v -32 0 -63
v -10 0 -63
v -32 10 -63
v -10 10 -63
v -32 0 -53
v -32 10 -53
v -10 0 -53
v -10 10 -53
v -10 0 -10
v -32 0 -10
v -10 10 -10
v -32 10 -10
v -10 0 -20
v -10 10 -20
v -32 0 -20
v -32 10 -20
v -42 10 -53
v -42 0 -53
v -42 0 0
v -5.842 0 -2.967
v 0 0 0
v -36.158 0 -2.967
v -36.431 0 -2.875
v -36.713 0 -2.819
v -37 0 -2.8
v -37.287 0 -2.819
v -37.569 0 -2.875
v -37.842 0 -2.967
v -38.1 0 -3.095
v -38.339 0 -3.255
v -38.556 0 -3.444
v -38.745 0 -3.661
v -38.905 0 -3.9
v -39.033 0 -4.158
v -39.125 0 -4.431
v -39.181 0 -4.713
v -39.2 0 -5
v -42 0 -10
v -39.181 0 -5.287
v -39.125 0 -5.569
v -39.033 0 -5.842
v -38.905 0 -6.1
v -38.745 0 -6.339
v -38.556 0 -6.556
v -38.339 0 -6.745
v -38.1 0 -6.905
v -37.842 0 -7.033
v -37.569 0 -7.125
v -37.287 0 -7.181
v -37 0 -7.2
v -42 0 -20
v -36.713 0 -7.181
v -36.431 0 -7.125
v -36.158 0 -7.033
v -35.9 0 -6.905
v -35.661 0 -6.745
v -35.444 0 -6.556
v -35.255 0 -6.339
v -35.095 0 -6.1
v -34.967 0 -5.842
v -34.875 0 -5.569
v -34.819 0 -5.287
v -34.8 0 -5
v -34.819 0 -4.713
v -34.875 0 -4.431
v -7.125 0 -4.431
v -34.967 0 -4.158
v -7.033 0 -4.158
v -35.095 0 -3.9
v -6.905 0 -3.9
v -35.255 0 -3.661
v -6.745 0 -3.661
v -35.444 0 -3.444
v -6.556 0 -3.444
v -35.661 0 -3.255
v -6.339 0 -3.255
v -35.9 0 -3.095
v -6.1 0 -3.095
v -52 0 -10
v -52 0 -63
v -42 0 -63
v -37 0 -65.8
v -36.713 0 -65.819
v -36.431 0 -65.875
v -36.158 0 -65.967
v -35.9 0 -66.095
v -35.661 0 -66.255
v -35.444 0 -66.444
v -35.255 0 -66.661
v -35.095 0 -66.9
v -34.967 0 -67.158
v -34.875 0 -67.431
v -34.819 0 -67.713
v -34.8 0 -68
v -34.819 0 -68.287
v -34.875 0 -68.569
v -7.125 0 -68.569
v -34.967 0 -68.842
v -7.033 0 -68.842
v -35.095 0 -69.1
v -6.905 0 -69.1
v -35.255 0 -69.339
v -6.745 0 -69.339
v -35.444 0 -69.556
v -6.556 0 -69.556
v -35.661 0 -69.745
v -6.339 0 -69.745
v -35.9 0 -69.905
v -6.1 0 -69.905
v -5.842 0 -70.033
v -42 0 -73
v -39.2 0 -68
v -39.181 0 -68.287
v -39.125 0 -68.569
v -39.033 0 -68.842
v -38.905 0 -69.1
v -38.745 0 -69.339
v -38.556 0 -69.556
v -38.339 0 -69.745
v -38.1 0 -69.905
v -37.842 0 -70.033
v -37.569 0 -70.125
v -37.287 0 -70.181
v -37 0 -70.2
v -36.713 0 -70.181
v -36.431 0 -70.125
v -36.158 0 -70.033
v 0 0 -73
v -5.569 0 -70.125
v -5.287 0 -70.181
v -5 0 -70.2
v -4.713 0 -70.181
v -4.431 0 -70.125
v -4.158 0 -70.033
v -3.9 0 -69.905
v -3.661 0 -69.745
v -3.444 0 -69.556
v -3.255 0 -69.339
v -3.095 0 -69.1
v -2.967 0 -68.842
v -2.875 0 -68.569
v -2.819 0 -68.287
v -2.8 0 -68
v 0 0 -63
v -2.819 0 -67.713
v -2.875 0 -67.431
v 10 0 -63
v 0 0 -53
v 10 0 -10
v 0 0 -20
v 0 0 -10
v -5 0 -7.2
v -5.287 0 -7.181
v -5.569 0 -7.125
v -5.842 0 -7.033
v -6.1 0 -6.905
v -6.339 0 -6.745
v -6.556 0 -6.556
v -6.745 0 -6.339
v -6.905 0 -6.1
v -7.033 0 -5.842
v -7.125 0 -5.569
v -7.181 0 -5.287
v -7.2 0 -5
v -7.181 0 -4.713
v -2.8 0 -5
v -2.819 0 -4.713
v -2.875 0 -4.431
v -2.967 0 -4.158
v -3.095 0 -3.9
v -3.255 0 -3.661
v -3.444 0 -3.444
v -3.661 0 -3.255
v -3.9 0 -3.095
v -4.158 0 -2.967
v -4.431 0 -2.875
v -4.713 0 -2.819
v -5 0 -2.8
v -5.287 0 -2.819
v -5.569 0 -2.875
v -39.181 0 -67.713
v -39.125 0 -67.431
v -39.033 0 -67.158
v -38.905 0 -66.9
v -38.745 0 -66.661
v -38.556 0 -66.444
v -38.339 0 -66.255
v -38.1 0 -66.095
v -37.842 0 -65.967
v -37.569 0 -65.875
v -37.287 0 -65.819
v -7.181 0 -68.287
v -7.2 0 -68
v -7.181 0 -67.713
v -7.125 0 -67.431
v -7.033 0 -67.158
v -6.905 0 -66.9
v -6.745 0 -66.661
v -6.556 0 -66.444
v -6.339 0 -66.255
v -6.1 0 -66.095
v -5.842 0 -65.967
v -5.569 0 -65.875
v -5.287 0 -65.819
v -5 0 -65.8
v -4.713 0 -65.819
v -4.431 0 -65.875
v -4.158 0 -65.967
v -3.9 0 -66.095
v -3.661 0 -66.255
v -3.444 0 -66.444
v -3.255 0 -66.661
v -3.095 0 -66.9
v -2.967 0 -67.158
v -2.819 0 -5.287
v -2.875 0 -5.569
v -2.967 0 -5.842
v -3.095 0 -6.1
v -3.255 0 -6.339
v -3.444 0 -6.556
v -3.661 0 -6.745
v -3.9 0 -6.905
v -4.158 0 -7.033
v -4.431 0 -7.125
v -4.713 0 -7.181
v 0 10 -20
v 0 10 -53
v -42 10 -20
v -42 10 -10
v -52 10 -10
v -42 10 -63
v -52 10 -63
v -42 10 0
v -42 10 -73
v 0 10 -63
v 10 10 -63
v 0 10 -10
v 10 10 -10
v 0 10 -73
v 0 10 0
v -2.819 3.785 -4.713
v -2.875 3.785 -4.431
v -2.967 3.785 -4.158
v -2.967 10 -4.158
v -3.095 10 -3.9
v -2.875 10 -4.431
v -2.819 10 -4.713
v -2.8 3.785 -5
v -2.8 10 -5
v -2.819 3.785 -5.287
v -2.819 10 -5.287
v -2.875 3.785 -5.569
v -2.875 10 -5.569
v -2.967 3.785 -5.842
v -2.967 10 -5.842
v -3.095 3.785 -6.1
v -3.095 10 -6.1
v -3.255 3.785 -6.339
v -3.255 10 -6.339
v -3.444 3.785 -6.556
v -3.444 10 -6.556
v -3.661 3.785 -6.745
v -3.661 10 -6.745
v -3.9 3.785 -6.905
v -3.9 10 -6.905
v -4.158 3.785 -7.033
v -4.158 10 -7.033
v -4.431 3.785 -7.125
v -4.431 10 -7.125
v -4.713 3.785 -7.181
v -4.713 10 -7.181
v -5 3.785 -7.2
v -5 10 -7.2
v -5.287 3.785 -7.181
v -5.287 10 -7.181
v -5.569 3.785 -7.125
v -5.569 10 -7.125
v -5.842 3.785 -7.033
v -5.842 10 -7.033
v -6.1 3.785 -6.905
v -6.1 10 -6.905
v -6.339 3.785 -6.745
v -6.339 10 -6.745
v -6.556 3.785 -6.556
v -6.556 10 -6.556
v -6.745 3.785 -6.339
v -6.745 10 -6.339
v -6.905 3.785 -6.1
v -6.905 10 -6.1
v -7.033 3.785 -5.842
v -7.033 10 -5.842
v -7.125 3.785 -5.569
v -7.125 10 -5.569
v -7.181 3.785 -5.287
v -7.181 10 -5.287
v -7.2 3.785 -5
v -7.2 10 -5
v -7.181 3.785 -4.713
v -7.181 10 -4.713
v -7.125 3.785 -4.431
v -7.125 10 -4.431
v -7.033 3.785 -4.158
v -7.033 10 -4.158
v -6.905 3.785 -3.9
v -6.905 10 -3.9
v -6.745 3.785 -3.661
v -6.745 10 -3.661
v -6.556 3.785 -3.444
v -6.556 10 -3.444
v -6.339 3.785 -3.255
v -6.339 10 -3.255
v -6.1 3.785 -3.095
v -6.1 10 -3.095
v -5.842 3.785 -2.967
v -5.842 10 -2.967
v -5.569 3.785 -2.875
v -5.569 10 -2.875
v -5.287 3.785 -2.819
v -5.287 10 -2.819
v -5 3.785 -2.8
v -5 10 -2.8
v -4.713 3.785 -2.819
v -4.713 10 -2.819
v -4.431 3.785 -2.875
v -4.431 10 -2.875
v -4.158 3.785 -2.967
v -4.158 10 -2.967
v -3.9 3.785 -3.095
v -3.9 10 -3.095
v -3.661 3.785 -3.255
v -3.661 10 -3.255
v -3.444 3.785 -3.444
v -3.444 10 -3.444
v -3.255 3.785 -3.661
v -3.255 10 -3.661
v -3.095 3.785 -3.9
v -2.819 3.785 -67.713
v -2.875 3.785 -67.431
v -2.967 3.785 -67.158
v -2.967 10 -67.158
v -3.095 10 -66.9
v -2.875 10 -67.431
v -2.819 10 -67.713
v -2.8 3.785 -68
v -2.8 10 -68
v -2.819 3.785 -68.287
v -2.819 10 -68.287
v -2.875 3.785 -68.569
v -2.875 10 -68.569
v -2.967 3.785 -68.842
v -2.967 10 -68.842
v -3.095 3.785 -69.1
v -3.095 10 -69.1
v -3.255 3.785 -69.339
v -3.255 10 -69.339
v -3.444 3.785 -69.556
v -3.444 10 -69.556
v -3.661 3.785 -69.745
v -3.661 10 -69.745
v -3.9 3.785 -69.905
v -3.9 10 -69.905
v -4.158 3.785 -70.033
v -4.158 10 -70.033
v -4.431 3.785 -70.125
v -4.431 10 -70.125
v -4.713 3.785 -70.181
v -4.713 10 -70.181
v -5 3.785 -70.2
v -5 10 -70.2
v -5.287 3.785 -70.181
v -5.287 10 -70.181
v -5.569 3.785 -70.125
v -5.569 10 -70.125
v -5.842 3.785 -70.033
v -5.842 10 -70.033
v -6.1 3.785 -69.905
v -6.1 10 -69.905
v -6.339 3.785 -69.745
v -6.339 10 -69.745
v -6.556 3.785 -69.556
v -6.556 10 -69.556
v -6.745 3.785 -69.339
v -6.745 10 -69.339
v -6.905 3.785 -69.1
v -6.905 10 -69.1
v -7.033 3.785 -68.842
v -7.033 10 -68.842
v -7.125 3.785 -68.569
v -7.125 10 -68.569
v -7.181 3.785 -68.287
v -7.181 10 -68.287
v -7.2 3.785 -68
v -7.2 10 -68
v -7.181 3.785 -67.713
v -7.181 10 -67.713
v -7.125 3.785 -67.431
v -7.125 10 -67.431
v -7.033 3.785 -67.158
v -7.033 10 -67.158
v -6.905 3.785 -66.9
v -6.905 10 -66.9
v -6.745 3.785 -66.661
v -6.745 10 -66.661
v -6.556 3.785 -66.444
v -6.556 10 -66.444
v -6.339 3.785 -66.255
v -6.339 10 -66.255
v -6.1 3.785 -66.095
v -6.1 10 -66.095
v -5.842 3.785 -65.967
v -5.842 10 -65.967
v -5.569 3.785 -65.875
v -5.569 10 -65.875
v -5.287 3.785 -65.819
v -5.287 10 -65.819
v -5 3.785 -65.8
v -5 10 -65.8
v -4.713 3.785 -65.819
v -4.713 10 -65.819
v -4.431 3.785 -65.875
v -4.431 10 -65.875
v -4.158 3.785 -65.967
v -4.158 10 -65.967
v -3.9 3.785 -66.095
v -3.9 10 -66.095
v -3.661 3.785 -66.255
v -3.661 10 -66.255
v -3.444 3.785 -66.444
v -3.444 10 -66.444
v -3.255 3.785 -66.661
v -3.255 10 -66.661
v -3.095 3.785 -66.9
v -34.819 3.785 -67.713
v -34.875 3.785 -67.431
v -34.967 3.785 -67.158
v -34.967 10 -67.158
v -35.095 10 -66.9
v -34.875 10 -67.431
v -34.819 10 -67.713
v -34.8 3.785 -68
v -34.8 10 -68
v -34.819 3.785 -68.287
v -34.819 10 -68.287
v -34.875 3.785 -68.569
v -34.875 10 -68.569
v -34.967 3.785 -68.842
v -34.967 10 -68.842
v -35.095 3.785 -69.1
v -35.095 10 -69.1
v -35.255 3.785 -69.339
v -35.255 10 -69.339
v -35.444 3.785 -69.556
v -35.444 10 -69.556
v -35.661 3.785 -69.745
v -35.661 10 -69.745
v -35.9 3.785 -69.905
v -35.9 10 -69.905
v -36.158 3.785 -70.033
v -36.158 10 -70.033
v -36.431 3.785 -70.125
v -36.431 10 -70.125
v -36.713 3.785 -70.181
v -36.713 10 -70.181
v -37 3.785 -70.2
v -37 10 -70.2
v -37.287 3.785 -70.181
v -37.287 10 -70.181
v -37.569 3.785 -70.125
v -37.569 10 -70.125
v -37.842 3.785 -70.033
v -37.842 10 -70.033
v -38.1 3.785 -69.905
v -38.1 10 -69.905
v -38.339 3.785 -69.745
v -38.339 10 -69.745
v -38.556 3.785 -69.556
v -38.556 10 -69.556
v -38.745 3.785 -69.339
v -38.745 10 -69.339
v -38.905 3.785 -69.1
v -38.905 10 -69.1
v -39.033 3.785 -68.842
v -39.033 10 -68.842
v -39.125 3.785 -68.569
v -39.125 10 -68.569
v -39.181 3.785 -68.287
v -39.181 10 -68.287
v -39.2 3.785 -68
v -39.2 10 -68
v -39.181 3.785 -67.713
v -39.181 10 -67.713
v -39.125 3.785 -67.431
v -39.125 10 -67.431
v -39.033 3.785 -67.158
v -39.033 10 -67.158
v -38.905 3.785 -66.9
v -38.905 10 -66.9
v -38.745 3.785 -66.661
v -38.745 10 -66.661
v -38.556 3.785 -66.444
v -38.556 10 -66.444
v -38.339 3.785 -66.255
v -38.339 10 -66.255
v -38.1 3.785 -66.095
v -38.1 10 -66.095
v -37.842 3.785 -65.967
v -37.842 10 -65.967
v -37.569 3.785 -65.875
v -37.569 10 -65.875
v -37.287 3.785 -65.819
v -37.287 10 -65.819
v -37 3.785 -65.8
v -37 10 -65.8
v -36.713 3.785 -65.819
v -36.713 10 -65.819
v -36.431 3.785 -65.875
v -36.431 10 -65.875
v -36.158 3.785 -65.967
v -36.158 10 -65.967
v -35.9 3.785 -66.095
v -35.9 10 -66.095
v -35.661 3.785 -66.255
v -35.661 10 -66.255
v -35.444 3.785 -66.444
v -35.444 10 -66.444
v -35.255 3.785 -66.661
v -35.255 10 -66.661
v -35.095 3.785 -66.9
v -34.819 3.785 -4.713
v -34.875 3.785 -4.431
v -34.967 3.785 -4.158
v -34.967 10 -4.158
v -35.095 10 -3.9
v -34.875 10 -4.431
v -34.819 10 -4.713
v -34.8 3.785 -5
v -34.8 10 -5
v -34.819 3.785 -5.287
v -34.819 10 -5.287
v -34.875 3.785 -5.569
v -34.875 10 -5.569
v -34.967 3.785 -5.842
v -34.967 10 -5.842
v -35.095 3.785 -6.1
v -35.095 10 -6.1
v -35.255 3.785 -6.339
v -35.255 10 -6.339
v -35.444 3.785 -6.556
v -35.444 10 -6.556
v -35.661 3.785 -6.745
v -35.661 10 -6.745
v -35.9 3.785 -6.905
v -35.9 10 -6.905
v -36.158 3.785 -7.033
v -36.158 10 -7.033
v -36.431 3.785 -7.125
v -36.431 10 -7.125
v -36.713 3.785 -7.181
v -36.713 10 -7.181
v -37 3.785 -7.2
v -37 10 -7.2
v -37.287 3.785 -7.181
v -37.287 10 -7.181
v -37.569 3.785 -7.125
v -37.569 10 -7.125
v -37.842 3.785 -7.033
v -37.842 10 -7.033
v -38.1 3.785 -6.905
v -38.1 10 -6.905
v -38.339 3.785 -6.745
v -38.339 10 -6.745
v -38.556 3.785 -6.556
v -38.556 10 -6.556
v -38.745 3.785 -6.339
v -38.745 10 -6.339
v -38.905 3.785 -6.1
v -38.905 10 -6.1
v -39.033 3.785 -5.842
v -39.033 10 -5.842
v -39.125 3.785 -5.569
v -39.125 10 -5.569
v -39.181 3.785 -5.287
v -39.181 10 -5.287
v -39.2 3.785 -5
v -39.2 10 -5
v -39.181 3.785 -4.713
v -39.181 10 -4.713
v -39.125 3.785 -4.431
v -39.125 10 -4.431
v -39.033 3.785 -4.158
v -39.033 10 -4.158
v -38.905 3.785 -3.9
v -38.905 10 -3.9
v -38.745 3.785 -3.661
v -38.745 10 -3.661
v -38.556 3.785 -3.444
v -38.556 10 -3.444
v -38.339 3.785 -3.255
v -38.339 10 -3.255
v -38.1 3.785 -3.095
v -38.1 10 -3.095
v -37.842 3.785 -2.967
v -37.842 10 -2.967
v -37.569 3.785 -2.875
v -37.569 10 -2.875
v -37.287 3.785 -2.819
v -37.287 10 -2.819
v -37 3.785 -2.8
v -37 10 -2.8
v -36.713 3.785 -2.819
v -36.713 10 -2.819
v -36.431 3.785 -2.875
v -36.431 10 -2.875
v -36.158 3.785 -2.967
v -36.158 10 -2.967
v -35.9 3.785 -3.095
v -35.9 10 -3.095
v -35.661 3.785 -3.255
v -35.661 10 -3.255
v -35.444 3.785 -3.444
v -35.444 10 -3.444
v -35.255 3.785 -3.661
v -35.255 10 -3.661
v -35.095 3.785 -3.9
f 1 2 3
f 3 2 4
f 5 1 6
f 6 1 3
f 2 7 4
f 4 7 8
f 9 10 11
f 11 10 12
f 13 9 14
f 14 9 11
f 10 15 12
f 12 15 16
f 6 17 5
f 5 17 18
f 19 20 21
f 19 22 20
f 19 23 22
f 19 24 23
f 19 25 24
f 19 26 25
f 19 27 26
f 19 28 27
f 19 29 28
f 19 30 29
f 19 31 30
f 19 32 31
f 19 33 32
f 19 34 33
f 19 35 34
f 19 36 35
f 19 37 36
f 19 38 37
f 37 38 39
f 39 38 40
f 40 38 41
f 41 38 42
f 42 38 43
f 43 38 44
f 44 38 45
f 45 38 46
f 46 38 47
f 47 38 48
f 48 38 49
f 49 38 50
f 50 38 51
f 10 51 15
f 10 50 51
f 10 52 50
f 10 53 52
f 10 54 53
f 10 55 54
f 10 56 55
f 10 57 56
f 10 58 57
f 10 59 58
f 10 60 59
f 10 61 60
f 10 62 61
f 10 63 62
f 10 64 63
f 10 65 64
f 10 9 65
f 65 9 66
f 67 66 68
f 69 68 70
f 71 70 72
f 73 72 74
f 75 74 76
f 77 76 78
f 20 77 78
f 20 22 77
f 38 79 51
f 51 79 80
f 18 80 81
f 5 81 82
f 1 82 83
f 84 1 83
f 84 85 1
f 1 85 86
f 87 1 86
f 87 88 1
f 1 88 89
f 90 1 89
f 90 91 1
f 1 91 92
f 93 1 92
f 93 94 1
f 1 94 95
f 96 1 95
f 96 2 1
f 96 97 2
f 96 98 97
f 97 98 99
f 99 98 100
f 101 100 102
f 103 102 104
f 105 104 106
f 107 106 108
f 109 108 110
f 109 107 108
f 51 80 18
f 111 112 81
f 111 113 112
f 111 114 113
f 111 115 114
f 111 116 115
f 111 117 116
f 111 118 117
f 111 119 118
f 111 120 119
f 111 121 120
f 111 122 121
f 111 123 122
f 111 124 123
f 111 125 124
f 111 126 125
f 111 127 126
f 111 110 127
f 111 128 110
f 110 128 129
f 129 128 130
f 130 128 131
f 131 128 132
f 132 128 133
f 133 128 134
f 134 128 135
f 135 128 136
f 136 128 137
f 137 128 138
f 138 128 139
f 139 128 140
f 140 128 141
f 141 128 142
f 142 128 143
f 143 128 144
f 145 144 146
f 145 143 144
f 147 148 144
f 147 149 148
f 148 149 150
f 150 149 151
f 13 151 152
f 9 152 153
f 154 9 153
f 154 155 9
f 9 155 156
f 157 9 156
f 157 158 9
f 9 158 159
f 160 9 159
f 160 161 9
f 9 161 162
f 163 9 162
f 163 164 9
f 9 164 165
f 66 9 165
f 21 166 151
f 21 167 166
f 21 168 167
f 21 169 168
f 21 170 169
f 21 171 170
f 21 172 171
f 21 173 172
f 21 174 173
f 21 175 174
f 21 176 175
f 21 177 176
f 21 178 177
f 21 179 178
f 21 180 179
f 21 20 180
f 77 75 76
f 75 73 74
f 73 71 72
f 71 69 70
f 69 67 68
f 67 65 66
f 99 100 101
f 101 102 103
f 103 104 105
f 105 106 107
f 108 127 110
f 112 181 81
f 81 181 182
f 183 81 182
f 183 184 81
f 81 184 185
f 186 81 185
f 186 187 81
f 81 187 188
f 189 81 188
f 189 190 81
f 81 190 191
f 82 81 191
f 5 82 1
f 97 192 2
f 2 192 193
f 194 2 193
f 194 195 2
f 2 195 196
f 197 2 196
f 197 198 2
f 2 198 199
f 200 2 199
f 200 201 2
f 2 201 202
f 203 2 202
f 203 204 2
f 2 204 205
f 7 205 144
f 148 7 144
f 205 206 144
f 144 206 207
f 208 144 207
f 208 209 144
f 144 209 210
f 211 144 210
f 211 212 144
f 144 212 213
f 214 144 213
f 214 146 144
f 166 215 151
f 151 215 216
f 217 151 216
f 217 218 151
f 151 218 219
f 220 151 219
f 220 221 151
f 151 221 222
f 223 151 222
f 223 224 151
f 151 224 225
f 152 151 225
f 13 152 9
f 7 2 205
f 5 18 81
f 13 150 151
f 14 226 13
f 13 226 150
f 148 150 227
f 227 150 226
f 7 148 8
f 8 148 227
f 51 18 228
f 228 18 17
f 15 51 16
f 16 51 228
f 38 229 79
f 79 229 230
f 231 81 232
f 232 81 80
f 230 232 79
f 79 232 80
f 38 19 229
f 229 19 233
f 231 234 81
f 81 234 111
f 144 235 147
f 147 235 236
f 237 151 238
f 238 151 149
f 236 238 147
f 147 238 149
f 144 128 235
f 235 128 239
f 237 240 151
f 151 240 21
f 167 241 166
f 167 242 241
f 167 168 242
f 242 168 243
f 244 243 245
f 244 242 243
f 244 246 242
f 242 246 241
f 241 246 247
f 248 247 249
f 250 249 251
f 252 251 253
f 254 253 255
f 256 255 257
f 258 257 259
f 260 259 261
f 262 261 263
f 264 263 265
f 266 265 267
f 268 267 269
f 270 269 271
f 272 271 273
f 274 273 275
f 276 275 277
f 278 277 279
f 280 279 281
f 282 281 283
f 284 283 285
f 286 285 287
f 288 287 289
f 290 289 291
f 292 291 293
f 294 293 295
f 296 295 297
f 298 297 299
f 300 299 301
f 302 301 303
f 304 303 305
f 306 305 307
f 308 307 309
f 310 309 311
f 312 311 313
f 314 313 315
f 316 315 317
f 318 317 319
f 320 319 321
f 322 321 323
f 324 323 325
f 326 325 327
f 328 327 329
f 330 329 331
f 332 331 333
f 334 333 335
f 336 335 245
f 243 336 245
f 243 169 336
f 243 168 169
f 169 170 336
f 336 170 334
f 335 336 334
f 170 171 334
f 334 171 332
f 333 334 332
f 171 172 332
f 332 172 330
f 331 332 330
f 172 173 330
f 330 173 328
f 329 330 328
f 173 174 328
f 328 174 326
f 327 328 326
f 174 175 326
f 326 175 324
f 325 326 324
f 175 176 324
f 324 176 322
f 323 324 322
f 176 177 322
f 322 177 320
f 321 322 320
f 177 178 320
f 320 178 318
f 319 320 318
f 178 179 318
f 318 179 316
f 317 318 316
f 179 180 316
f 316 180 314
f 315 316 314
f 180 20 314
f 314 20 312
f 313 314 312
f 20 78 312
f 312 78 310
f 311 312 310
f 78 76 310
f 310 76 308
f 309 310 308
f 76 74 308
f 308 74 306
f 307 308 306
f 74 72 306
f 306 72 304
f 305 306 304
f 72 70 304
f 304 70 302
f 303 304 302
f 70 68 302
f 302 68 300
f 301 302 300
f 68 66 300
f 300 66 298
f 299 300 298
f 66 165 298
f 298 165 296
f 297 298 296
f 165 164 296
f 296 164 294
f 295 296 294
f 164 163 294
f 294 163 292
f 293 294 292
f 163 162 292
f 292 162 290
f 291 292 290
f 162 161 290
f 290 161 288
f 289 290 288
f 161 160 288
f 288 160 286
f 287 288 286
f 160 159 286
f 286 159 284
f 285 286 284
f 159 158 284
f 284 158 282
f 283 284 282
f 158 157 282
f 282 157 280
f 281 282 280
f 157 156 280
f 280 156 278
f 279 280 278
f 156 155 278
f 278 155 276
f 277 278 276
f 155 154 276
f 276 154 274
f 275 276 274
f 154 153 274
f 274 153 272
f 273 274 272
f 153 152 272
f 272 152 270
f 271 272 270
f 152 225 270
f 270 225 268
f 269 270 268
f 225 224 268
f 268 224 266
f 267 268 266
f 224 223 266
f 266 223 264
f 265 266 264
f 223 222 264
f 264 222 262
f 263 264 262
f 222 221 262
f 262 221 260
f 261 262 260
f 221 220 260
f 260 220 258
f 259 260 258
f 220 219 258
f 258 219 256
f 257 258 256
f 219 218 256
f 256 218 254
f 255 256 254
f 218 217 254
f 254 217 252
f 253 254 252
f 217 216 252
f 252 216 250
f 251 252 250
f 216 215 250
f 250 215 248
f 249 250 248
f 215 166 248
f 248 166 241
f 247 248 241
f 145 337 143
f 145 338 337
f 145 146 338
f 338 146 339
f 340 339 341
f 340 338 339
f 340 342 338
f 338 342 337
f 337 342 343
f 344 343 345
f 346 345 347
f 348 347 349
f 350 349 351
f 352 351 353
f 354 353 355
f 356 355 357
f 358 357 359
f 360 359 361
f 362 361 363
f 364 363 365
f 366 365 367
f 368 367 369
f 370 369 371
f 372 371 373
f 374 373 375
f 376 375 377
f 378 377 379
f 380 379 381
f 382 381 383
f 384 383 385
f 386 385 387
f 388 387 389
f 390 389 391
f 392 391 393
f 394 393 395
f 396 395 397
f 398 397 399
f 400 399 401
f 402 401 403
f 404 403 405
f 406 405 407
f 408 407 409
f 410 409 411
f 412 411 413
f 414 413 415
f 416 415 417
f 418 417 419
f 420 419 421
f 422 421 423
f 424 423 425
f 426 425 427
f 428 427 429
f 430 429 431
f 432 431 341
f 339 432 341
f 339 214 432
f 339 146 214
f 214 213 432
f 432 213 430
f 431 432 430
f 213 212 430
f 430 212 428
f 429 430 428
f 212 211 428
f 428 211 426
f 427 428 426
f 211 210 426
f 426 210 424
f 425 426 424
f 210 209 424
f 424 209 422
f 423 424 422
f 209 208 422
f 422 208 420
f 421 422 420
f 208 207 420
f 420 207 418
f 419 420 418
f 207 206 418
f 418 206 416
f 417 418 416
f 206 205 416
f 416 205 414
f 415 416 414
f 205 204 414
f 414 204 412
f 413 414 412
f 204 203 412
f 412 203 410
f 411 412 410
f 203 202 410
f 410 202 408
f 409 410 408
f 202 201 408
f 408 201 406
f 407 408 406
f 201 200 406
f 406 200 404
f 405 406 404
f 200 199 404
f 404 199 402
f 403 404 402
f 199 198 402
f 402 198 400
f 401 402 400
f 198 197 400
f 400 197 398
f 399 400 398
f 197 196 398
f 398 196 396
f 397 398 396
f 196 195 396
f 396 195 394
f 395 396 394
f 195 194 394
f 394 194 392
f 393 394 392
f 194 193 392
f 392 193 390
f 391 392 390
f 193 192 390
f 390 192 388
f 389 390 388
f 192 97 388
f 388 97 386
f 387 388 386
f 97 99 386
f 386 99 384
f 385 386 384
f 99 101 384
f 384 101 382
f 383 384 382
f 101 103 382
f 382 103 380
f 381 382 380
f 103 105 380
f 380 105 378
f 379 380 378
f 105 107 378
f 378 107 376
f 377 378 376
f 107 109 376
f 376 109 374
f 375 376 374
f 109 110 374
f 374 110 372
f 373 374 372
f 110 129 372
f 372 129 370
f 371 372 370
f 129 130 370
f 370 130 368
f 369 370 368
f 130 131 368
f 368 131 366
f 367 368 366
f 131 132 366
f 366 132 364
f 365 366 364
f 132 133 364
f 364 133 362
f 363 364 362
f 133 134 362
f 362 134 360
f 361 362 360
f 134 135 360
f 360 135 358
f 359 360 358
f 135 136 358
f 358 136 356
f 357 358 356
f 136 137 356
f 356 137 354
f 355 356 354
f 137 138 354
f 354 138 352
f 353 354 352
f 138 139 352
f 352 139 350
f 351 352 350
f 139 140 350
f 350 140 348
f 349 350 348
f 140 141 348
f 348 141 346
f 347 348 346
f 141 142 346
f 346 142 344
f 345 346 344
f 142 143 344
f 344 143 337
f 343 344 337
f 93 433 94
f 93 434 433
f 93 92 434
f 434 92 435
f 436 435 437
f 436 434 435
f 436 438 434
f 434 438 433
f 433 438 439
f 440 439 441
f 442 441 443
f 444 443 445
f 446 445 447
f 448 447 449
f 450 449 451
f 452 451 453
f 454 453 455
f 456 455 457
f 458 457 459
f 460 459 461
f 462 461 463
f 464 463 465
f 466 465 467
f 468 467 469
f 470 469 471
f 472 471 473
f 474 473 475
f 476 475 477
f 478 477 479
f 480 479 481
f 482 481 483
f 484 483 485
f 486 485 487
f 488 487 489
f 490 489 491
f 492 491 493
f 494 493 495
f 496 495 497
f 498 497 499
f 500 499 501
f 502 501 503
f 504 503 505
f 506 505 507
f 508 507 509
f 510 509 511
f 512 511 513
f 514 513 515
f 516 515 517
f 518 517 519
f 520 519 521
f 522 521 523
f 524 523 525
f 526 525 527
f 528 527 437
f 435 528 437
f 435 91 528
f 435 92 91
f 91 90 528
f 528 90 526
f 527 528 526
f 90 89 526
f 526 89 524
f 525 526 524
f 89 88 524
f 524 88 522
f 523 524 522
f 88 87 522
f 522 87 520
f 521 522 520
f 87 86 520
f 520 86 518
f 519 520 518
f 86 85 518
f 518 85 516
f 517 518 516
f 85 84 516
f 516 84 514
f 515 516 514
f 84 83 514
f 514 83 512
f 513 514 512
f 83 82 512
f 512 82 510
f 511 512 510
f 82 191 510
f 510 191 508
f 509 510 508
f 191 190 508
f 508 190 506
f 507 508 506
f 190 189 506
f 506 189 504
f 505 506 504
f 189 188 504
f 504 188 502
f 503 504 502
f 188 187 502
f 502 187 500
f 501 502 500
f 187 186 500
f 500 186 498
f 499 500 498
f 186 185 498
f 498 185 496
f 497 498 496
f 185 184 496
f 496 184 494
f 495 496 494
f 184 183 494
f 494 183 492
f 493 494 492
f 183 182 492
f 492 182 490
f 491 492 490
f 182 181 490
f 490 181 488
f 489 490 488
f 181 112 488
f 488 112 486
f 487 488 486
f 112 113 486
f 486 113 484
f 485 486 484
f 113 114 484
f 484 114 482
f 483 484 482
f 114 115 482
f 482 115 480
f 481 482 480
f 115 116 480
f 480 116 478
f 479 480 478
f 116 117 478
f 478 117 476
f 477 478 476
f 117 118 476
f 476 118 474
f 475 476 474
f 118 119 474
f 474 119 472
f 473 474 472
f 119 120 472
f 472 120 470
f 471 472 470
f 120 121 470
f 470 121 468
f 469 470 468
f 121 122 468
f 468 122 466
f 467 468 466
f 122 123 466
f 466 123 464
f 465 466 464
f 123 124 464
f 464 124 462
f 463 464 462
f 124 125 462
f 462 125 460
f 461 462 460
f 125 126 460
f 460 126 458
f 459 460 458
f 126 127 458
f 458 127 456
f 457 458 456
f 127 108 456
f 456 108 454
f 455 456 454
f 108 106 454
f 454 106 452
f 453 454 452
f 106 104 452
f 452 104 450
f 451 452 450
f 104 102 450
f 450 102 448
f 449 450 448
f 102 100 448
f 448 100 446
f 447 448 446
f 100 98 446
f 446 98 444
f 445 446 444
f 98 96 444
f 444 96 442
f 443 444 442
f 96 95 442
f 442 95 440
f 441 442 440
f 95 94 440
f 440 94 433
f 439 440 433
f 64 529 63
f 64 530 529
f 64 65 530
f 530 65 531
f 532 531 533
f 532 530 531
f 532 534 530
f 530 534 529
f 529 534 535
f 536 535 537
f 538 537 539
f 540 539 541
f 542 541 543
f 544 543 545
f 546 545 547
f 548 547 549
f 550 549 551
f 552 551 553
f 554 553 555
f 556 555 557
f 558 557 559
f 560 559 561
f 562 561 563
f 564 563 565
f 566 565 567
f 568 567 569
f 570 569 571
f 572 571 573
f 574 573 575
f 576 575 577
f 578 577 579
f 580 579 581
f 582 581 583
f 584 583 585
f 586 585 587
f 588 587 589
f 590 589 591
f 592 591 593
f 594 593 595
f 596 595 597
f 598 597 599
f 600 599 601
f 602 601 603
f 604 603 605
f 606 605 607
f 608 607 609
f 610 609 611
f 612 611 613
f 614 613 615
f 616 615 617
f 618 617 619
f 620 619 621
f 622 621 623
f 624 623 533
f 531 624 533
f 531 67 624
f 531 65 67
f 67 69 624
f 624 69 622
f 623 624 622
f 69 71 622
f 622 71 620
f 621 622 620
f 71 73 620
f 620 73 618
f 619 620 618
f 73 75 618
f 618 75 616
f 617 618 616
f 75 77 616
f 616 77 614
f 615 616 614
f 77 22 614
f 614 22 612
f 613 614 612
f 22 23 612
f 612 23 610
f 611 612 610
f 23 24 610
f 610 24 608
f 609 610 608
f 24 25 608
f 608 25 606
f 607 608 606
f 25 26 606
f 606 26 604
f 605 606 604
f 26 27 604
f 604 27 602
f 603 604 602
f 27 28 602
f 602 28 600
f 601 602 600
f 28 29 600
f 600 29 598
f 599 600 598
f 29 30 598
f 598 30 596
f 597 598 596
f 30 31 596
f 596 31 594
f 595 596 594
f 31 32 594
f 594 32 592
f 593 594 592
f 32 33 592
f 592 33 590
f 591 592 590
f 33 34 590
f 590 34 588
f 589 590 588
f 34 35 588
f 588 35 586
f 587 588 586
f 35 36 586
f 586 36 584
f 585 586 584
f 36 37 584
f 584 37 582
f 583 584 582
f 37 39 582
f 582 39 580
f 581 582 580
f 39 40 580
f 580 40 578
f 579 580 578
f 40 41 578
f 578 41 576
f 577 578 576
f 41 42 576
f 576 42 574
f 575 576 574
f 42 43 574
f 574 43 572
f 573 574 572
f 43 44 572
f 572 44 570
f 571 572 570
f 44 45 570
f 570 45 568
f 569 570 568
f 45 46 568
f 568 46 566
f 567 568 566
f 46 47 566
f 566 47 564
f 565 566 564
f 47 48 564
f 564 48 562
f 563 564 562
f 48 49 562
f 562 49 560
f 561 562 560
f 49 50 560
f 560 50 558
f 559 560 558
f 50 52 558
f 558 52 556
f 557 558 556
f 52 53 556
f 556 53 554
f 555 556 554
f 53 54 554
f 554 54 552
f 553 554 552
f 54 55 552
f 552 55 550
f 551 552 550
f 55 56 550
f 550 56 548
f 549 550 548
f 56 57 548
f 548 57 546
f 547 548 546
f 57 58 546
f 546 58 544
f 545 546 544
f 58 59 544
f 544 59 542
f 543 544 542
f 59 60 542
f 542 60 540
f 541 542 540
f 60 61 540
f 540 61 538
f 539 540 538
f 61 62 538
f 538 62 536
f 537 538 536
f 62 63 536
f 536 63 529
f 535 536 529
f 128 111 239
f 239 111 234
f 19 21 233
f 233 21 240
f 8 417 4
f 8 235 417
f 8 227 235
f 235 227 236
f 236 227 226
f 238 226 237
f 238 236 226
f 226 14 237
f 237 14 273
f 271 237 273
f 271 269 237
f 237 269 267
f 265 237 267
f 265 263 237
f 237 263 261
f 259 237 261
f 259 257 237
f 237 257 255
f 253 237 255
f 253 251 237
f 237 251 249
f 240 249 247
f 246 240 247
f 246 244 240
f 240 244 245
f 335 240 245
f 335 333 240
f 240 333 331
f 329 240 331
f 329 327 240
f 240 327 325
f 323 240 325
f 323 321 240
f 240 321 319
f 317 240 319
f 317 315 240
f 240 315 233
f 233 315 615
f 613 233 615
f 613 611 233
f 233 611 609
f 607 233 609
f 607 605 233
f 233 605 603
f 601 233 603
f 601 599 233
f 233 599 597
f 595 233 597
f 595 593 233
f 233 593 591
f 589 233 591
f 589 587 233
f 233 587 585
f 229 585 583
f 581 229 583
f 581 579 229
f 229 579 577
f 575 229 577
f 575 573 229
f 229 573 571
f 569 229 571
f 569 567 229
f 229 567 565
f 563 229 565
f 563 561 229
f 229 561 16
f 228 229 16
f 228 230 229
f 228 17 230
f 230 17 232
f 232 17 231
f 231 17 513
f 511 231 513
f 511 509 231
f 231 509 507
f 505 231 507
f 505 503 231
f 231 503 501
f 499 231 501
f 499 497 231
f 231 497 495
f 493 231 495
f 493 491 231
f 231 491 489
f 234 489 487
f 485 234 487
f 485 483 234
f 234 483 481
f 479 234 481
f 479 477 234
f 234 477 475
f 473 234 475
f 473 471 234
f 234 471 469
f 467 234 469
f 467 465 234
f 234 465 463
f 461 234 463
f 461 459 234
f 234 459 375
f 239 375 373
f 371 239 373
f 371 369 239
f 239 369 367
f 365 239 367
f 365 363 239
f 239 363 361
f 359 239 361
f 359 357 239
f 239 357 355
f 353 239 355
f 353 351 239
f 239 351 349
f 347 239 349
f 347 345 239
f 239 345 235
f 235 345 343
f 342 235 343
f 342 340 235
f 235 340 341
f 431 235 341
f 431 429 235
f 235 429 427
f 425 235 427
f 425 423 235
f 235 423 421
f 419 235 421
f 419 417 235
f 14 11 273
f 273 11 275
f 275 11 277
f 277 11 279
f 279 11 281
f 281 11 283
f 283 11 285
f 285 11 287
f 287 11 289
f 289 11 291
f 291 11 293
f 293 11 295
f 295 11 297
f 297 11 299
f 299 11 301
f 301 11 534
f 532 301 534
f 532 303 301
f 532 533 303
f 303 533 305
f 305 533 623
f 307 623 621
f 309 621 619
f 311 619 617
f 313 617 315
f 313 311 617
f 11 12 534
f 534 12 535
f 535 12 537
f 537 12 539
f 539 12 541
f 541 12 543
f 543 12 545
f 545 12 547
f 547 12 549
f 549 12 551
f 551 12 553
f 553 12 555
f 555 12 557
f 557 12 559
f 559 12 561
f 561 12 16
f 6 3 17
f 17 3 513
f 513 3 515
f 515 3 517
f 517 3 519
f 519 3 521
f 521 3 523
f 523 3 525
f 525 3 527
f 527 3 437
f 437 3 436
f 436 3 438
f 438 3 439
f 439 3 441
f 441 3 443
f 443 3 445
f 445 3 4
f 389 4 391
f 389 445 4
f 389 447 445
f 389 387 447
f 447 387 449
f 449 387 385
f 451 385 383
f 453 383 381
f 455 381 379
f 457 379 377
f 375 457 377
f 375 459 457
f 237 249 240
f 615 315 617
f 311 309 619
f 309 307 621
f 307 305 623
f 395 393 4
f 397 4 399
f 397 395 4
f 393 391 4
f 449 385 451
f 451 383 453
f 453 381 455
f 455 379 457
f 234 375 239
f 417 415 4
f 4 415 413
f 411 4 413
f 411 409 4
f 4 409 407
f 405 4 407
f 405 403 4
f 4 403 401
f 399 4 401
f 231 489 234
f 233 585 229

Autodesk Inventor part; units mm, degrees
ref_plane "YZ Plane" through (0, 0, 0) normal (1, 0, 0) x (0, 1, 0)
ref_plane "XZ Plane" through (0, 0, 0) normal (0, 1, 0) x (-1, 0, 0)
ref_plane "XY Plane" through (0, 0, 0) normal (0, 0, 1) x (1, 0, 0)
sketch "Sketch1" plane through (0, 0, 0) normal (0, 1, 0) x (-1, 0, 0)
  line L0 (0, 0) -> (42, 0)
  line L1 (42, 0) -> (42, -73)
  line L2 (42, -73) -> (0, -73)
  line L3 (0, -73) -> (0, 0)
  dimension "d0" = 42
  dimension "d1" = 73
extrude "Extrusion1" add sketch "Sketch1" along normal blind 10
hole "Hole1" at (-37, 10, -5) direction (0, -1, 0) diameter 4.4 end through all
hole "Hole2" at (-37, 10, -68) direction (0, -1, 0) diameter 4.4 end through all
hole "Hole3" at (-5, 10, -68) direction (0, -1, 0) diameter 4.4 end through all
hole "Hole4" at (-5, 10, -5) direction (0, -1, 0) diameter 4.4 end through all
sketch "Sketch2" plane through (0, 0, 0) normal (1, 0, 0) x (0, 0, -1)
  line L0 (10, 10) -> (63, 10)
  line L1 (63, 10) -> (63, 0)
  line L2 (63, 0) -> (10, 0)
  line L3 (10, 0) -> (10, 10)
  line L4 (0, 10) -> (73, 10) projected
  line L5 (73, 0) -> (0, 0) projected
  dimension "d40" = 10
  dimension "d41" = 10
extrude "Extrusion2" add sketch "Sketch2" along normal blind 10
sketch "Sketch4" plane through (-42, 0, -73) normal (-1, 0, 0) x (0, 0, 1)
  line L0 (10, 10) -> (63, 10)
  line L1 (63, 10) -> (63, 0)
  line L2 (63, 0) -> (10, 0)
  line L3 (10, 0) -> (10, 10)
  line L4 (73, 0) -> (0, 0) projected
  line L5 (0, 10) -> (73, 10) projected
  dimension "d44" = 10
  dimension "d45" = 10
extrude "Extrusion3" add sketch "Sketch4" along normal blind 10
sketch "Sketch5" plane through (0, 10, 0) normal (0, 1, 0) x (1, 0, 0)
  line L0 (-42, 53) -> (0, 53)
  line L1 (0, 53) -> (0, 20)
  line L2 (0, 20) -> (-42, 20)
  line L3 (-42, 20) -> (-42, 53)
  line L4 (10, 63) -> (10, 10) projected
  line L5 (0, 73) -> (-42, 73) projected
  line L6 (-52, 10) -> (-52, 63) projected
  point P0 (0, 0)
  dimension "d48" = 10
  dimension "d49" = 20
  dimension "d50" = 20
  dimension "d51" = 10
extrude "Extrusion4" cut sketch "Sketch5" against normal up to next
sketch "Sketch6" plane through (0, 10, 0) normal (0, 1, 0) x (1, 0, 0)
  line L0 (-32, 63) -> (-10, 63)
  line L1 (-10, 63) -> (-10, 53)
  line L2 (-10, 53) -> (-32, 53)
  line L3 (-32, 53) -> (-32, 63)
  line L4 (-32, 20) -> (-10, 20)
  line L5 (-10, 20) -> (-10, 10)
  line L6 (-10, 10) -> (-32, 10)
  line L7 (-32, 10) -> (-32, 20)
  line L8 (-42, 53) -> (0, 53) projected
  line L9 (0, 20) -> (-42, 20) projected
  line L10 (0, 63) -> (0, 73) projected
  line L11 (-42, 73) -> (-42, 63) projected
  line L12 (0, 0) -> (0, 10) projected
  line L13 (-42, 10) -> (-42, 0) projected
  line L14 (-42, 63) -> (-52, 63) projected
  line L15 (0, 10) -> (10, 10) projected
  dimension "d54" = 10
  dimension "d55" = 10
  dimension "d56" = 10
  dimension "d57" = 10
extrude "Extrusion5" cut sketch "Sketch6" against normal up to next
properties part number "bottomplate"
